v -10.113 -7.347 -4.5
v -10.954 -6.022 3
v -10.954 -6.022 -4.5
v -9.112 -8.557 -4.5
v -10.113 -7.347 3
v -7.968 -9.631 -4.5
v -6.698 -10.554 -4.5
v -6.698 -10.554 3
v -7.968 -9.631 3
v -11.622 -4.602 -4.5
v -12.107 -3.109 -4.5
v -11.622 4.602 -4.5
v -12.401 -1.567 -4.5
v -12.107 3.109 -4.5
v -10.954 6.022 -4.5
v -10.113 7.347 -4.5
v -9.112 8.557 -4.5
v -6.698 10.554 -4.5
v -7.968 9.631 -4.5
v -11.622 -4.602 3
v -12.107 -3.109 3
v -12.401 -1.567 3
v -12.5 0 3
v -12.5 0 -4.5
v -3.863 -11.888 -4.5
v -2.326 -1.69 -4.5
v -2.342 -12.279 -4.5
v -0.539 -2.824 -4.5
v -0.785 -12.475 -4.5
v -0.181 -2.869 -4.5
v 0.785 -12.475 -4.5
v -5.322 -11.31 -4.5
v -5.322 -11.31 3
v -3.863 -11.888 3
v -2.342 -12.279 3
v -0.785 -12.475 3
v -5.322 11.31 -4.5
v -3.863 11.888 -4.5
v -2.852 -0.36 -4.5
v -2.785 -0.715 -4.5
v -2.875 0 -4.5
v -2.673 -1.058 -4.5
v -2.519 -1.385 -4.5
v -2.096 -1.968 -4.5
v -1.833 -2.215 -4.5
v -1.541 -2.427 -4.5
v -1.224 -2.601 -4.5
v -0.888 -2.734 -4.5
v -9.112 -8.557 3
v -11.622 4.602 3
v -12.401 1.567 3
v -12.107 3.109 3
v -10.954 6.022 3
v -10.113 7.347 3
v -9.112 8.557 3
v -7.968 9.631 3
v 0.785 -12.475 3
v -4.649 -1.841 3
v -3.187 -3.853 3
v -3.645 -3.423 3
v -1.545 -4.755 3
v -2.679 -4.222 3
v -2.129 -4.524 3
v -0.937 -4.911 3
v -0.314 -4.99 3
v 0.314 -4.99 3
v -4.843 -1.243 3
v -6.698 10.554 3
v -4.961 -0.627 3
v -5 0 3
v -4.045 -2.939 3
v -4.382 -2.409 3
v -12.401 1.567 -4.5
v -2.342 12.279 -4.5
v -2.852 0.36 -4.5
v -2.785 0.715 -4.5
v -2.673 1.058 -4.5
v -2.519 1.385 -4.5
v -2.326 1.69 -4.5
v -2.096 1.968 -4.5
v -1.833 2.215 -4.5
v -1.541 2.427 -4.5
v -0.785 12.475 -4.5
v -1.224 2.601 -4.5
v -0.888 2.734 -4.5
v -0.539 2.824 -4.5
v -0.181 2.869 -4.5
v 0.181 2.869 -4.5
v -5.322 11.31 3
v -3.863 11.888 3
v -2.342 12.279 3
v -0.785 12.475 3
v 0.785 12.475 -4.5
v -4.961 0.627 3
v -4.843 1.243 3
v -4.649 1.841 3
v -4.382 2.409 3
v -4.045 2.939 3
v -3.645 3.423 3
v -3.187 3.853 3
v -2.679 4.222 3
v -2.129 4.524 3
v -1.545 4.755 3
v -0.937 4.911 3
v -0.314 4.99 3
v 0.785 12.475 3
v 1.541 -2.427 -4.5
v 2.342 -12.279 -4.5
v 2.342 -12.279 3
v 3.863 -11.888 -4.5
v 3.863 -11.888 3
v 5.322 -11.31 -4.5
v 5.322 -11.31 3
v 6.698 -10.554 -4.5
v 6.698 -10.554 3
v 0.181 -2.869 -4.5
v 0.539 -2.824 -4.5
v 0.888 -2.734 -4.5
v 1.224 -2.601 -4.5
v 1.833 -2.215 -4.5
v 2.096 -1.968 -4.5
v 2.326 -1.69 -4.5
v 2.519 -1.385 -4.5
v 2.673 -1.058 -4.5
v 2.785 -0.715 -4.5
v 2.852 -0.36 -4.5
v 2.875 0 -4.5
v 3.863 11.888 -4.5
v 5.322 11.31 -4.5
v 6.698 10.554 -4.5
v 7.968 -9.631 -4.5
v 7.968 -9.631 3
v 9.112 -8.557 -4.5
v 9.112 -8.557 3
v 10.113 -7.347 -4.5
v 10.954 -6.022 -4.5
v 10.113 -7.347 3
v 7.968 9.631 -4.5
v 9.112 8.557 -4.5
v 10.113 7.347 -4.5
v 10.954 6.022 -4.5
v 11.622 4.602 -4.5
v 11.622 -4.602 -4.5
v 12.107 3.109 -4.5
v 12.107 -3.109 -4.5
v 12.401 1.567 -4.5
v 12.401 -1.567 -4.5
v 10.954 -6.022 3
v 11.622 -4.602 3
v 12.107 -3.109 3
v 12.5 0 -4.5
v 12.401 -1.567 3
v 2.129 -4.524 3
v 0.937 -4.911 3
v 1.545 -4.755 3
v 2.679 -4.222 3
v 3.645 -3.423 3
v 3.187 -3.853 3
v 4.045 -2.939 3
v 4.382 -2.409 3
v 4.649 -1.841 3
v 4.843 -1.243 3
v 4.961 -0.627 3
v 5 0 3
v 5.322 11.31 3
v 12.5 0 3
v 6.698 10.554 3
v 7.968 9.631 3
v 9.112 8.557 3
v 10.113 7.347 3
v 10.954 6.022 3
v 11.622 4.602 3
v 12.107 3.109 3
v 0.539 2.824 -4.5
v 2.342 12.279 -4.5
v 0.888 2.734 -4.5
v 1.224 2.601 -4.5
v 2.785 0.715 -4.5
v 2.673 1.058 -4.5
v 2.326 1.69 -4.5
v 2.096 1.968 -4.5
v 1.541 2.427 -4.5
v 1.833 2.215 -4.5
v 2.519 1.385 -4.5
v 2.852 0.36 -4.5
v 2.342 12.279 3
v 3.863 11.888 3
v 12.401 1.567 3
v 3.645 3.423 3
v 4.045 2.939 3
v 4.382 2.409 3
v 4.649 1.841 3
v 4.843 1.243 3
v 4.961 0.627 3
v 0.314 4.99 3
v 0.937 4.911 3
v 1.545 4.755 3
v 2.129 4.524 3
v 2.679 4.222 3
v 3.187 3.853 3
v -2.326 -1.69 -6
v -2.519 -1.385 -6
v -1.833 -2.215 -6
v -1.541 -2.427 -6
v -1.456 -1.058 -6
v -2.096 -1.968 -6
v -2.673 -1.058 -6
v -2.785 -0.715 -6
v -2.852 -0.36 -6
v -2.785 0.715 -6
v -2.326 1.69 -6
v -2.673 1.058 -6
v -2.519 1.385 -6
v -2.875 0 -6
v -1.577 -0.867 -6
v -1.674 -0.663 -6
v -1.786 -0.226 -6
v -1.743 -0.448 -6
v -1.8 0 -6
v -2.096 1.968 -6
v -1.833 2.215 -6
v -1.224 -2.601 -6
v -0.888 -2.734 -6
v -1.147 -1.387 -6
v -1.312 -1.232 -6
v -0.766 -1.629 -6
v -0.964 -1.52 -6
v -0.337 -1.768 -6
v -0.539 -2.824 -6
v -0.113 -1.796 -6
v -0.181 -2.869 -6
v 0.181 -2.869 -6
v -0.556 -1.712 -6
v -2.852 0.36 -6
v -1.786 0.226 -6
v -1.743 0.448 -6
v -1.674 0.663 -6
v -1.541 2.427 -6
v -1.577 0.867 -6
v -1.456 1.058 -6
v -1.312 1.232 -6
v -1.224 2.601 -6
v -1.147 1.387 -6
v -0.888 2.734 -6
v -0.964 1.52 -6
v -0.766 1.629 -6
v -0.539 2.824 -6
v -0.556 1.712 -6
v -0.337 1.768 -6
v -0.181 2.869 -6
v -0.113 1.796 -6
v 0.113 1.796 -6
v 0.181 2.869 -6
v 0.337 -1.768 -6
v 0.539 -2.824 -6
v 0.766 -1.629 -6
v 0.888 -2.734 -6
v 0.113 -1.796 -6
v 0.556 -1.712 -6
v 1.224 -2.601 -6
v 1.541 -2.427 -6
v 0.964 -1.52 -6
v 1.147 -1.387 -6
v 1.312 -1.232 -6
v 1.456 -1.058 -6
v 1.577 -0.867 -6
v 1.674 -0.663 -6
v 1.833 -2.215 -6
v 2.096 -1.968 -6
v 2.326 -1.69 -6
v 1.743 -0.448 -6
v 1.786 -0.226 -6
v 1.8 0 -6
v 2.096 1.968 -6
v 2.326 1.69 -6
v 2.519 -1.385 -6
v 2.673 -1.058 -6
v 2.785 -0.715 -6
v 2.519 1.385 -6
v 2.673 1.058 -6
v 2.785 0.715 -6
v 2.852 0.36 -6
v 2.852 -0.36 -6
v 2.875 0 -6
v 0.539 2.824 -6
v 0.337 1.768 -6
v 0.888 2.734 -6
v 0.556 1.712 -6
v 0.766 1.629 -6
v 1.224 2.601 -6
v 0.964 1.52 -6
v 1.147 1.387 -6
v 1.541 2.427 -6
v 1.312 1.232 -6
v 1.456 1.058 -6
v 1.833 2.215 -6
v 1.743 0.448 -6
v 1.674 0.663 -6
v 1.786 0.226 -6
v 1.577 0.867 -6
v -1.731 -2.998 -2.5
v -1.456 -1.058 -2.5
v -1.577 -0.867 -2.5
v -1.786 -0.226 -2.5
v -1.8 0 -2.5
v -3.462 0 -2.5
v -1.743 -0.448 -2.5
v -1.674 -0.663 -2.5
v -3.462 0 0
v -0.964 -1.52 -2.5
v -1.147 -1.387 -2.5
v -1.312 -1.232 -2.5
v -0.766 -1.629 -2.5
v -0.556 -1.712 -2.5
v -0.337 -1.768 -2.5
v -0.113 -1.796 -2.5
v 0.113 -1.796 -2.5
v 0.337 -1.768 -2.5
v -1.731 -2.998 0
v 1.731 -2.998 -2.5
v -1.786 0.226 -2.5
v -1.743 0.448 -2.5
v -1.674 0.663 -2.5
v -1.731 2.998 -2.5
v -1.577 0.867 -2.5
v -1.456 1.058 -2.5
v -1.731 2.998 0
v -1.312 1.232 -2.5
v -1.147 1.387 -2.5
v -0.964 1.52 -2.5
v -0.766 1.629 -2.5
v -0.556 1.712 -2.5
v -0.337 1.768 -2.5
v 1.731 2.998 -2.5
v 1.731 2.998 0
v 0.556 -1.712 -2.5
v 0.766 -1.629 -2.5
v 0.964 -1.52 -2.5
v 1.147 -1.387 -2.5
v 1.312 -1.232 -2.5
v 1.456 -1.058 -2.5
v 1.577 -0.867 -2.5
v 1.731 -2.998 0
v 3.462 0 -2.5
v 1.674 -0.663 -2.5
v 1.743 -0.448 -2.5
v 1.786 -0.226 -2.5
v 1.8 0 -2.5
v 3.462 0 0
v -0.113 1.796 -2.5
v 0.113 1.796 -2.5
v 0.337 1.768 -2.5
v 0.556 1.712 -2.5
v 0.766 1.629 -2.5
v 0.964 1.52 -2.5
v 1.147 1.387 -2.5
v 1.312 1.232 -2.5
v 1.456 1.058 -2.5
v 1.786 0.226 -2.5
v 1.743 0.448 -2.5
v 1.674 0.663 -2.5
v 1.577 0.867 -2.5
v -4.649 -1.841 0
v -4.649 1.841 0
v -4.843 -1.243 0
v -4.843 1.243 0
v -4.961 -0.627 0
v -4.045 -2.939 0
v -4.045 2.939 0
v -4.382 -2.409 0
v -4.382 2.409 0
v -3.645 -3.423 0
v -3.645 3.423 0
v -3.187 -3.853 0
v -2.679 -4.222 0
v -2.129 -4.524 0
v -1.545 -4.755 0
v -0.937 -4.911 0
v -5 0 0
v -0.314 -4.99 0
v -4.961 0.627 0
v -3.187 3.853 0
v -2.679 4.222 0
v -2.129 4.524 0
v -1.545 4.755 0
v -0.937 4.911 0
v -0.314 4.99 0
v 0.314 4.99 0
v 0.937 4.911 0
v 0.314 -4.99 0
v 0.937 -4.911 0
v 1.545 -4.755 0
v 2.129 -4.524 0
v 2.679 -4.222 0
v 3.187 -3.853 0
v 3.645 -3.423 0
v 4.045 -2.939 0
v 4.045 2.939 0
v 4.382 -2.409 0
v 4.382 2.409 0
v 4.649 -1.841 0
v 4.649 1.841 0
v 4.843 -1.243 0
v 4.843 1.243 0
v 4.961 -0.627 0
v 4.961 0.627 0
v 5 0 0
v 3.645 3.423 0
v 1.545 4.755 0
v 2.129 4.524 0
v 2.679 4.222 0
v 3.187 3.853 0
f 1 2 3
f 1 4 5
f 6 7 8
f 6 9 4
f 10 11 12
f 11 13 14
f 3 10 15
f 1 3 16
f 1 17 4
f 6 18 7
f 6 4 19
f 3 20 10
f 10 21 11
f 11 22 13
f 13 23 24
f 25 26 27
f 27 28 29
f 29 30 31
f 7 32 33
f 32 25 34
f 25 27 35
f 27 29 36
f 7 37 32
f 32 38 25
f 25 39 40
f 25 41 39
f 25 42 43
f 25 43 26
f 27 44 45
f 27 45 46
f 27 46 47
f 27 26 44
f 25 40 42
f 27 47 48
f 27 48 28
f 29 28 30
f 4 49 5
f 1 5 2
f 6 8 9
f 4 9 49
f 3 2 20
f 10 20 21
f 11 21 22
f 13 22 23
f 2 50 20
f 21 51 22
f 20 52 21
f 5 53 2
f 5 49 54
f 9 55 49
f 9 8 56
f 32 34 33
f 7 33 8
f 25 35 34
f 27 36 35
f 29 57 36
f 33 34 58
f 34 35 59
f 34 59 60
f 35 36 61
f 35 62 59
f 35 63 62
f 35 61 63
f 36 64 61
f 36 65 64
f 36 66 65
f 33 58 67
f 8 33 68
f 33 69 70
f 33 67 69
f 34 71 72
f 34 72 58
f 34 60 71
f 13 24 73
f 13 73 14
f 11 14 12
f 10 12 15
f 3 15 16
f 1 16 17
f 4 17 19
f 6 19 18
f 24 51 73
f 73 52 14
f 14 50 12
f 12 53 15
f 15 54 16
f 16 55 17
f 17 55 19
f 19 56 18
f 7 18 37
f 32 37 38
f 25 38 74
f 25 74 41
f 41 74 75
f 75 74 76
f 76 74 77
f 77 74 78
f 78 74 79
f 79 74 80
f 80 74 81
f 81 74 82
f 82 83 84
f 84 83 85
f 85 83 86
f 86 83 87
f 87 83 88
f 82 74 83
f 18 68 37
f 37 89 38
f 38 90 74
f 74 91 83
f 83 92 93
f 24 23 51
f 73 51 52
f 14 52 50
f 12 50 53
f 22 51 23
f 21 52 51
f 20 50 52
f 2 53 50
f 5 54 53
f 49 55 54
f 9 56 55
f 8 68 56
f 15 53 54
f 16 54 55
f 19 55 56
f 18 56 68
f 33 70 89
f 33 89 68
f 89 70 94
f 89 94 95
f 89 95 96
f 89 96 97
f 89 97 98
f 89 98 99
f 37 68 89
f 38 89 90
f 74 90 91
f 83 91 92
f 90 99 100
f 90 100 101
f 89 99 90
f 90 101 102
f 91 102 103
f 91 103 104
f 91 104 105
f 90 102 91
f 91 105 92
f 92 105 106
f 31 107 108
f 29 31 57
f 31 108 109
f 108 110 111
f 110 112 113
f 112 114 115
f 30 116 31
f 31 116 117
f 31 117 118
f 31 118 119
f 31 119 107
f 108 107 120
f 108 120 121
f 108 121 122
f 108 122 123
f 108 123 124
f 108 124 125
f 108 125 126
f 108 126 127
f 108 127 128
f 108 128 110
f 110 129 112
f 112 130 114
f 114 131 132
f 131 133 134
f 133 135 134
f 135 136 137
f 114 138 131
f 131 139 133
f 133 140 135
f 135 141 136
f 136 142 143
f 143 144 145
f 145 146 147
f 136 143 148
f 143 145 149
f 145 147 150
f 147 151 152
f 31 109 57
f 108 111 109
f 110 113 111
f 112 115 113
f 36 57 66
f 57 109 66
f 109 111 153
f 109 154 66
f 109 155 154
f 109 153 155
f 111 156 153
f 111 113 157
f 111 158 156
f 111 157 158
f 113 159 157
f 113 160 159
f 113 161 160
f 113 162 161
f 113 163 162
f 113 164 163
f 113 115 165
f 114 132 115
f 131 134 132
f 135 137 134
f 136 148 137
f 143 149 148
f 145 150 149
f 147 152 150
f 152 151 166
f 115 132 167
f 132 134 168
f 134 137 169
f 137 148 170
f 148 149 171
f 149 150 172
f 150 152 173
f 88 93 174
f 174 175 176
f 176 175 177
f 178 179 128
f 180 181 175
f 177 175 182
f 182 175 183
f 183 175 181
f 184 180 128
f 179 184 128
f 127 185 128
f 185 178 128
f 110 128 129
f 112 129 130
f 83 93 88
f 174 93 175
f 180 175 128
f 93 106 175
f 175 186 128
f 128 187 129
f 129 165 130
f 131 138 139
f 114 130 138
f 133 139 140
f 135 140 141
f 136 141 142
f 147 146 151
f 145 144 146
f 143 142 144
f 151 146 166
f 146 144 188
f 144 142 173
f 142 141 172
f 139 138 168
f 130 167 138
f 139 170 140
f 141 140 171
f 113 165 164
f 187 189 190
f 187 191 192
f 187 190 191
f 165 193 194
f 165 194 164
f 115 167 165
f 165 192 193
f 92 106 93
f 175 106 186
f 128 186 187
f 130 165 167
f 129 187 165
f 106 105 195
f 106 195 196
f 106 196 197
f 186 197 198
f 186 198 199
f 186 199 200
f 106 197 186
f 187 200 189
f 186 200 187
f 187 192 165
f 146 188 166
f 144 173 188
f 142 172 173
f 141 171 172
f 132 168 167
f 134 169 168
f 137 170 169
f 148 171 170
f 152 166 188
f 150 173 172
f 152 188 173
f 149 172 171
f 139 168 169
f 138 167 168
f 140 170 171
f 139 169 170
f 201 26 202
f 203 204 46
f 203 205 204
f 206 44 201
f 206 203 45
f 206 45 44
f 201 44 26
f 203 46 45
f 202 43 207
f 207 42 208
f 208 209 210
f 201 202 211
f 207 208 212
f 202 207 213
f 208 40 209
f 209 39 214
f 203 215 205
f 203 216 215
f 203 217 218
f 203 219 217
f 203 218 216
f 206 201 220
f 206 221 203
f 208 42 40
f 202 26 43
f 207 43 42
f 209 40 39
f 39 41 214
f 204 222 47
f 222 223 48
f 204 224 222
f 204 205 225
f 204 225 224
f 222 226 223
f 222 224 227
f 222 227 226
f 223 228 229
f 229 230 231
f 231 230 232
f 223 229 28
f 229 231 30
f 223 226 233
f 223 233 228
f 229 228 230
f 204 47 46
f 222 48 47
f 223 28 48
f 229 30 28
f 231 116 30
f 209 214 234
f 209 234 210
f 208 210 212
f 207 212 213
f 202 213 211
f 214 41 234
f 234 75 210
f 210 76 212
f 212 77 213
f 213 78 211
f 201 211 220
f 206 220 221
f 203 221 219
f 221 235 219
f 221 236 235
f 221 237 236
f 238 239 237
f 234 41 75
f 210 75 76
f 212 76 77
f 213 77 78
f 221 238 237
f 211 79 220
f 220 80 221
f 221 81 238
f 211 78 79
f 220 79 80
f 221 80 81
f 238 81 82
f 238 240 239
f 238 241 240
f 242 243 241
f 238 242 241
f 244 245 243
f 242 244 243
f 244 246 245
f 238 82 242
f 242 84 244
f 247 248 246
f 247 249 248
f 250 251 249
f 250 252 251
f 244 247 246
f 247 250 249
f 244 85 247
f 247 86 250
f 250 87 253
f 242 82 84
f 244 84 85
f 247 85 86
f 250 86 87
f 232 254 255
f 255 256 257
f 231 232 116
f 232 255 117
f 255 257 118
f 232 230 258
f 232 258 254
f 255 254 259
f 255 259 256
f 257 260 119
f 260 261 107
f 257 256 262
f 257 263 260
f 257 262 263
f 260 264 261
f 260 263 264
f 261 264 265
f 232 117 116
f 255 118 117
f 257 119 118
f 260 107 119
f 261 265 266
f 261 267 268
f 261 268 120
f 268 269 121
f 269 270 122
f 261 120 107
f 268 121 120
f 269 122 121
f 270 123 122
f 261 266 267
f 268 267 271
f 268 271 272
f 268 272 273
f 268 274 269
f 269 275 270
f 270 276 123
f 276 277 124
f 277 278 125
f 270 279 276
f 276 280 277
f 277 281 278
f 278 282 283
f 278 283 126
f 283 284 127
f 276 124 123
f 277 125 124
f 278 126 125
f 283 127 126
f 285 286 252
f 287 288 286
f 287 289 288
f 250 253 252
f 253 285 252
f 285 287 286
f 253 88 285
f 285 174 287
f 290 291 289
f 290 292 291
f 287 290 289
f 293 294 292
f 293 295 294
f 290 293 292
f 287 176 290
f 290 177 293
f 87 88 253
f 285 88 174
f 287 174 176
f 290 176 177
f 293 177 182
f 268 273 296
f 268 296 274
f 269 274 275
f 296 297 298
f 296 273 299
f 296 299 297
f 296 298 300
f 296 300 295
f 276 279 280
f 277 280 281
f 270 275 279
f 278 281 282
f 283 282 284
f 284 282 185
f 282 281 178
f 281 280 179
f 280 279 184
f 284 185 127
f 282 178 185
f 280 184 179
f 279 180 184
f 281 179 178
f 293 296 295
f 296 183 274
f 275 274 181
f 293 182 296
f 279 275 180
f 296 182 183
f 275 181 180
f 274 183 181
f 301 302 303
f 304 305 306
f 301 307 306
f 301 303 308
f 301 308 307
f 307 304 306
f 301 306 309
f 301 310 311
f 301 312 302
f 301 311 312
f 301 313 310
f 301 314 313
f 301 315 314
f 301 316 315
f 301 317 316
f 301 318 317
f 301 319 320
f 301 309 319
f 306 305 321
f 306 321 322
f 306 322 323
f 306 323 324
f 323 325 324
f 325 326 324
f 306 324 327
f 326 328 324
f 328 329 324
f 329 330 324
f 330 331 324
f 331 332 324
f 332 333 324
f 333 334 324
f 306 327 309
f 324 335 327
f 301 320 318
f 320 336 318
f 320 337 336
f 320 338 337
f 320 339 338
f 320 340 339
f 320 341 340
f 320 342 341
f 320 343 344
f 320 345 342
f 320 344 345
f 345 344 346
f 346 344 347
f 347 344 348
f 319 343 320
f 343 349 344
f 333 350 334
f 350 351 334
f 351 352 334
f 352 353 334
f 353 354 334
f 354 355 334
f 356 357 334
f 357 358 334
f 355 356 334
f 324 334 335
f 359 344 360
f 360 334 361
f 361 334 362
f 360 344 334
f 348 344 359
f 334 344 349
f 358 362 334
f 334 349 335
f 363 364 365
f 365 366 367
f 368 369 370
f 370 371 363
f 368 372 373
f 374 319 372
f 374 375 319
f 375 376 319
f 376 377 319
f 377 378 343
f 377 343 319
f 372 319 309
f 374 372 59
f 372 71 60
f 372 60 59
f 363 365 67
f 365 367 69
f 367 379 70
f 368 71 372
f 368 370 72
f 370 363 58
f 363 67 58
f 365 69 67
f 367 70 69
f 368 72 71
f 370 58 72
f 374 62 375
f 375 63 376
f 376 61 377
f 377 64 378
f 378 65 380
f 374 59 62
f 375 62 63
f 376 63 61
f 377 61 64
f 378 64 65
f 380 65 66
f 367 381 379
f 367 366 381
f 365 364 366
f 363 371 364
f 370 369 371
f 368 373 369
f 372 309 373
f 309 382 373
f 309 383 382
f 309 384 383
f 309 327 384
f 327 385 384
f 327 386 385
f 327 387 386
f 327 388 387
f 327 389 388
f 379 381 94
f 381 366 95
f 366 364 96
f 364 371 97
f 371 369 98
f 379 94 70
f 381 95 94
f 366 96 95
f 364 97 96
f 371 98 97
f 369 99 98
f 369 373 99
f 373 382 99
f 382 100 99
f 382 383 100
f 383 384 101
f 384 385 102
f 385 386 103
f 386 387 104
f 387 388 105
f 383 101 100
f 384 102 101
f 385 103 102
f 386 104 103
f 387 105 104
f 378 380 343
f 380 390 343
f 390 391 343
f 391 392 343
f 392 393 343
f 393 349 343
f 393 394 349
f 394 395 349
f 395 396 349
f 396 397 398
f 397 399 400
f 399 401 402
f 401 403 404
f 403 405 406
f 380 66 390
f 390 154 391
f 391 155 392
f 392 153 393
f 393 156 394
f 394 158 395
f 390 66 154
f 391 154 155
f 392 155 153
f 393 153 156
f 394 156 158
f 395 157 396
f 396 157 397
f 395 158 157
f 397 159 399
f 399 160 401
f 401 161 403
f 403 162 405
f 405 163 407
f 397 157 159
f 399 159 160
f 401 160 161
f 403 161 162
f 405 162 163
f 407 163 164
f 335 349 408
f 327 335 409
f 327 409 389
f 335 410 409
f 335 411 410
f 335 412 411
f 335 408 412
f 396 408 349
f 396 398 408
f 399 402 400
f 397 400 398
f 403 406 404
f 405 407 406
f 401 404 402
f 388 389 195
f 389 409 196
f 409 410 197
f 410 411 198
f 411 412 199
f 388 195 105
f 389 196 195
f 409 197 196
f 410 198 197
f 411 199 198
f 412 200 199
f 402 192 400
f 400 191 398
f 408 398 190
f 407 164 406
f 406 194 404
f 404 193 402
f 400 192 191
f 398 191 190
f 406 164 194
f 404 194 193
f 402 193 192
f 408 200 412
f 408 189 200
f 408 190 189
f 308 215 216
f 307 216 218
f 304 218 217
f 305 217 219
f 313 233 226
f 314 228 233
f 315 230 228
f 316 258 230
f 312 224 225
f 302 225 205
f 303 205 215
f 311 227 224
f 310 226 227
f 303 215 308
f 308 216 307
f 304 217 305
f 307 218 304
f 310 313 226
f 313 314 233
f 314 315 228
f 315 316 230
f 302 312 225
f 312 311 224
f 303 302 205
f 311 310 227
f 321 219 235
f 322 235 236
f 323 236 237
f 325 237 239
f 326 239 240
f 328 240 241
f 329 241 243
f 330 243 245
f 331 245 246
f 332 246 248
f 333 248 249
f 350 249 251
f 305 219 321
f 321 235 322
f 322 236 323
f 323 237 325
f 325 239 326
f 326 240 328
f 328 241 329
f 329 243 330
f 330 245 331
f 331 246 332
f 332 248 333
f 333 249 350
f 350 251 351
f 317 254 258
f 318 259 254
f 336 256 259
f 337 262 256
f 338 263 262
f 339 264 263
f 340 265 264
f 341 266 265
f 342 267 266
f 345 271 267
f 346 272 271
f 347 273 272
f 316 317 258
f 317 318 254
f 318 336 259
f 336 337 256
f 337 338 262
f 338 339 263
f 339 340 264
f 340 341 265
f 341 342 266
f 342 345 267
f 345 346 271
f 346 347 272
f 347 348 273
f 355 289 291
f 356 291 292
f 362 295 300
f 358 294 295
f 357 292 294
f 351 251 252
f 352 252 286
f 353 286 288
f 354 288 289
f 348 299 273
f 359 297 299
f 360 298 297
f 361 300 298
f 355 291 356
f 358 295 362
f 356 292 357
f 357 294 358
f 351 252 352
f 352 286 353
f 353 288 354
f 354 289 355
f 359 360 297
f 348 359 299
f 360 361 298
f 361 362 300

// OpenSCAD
$fn = 50;

difference() {
	union() {
		translate(v = [0, 0, -4.5]) {
			cylinder(h = 7.5, r = 12.5);
		}
		#translate(v = [0, 0, -6.0]) {
			cylinder(h = 6, r = 2.875);
		}
	}
	union() {
		translate(v = [0, 0, 0]) {
			rotate(a = [0, 0, 0]) {
				difference() {
					union() {
						translate(v = [0, 0, -2.5]) {
							linear_extrude(height = 2.5) {
								polygon(points = [[3.4619999999999997, 0.0], [1.7310000000000003, 2.9981799479017264], [-1.7309999999999992, 2.9981799479017264], [-3.4619999999999997, 4.2397272186481365e-16], [-1.7310000000000014, -2.998179947901726], [1.7309999999999977, -2.9981799479017277]]);
							}
						}
					}
					union();
				}
			}
		}
		#cylinder(h = 3, r = 5.0);
		#translate(v = [0, 0, -100.0]) {
			cylinder(h = 200, r = 1.8);
		}
	}
}
